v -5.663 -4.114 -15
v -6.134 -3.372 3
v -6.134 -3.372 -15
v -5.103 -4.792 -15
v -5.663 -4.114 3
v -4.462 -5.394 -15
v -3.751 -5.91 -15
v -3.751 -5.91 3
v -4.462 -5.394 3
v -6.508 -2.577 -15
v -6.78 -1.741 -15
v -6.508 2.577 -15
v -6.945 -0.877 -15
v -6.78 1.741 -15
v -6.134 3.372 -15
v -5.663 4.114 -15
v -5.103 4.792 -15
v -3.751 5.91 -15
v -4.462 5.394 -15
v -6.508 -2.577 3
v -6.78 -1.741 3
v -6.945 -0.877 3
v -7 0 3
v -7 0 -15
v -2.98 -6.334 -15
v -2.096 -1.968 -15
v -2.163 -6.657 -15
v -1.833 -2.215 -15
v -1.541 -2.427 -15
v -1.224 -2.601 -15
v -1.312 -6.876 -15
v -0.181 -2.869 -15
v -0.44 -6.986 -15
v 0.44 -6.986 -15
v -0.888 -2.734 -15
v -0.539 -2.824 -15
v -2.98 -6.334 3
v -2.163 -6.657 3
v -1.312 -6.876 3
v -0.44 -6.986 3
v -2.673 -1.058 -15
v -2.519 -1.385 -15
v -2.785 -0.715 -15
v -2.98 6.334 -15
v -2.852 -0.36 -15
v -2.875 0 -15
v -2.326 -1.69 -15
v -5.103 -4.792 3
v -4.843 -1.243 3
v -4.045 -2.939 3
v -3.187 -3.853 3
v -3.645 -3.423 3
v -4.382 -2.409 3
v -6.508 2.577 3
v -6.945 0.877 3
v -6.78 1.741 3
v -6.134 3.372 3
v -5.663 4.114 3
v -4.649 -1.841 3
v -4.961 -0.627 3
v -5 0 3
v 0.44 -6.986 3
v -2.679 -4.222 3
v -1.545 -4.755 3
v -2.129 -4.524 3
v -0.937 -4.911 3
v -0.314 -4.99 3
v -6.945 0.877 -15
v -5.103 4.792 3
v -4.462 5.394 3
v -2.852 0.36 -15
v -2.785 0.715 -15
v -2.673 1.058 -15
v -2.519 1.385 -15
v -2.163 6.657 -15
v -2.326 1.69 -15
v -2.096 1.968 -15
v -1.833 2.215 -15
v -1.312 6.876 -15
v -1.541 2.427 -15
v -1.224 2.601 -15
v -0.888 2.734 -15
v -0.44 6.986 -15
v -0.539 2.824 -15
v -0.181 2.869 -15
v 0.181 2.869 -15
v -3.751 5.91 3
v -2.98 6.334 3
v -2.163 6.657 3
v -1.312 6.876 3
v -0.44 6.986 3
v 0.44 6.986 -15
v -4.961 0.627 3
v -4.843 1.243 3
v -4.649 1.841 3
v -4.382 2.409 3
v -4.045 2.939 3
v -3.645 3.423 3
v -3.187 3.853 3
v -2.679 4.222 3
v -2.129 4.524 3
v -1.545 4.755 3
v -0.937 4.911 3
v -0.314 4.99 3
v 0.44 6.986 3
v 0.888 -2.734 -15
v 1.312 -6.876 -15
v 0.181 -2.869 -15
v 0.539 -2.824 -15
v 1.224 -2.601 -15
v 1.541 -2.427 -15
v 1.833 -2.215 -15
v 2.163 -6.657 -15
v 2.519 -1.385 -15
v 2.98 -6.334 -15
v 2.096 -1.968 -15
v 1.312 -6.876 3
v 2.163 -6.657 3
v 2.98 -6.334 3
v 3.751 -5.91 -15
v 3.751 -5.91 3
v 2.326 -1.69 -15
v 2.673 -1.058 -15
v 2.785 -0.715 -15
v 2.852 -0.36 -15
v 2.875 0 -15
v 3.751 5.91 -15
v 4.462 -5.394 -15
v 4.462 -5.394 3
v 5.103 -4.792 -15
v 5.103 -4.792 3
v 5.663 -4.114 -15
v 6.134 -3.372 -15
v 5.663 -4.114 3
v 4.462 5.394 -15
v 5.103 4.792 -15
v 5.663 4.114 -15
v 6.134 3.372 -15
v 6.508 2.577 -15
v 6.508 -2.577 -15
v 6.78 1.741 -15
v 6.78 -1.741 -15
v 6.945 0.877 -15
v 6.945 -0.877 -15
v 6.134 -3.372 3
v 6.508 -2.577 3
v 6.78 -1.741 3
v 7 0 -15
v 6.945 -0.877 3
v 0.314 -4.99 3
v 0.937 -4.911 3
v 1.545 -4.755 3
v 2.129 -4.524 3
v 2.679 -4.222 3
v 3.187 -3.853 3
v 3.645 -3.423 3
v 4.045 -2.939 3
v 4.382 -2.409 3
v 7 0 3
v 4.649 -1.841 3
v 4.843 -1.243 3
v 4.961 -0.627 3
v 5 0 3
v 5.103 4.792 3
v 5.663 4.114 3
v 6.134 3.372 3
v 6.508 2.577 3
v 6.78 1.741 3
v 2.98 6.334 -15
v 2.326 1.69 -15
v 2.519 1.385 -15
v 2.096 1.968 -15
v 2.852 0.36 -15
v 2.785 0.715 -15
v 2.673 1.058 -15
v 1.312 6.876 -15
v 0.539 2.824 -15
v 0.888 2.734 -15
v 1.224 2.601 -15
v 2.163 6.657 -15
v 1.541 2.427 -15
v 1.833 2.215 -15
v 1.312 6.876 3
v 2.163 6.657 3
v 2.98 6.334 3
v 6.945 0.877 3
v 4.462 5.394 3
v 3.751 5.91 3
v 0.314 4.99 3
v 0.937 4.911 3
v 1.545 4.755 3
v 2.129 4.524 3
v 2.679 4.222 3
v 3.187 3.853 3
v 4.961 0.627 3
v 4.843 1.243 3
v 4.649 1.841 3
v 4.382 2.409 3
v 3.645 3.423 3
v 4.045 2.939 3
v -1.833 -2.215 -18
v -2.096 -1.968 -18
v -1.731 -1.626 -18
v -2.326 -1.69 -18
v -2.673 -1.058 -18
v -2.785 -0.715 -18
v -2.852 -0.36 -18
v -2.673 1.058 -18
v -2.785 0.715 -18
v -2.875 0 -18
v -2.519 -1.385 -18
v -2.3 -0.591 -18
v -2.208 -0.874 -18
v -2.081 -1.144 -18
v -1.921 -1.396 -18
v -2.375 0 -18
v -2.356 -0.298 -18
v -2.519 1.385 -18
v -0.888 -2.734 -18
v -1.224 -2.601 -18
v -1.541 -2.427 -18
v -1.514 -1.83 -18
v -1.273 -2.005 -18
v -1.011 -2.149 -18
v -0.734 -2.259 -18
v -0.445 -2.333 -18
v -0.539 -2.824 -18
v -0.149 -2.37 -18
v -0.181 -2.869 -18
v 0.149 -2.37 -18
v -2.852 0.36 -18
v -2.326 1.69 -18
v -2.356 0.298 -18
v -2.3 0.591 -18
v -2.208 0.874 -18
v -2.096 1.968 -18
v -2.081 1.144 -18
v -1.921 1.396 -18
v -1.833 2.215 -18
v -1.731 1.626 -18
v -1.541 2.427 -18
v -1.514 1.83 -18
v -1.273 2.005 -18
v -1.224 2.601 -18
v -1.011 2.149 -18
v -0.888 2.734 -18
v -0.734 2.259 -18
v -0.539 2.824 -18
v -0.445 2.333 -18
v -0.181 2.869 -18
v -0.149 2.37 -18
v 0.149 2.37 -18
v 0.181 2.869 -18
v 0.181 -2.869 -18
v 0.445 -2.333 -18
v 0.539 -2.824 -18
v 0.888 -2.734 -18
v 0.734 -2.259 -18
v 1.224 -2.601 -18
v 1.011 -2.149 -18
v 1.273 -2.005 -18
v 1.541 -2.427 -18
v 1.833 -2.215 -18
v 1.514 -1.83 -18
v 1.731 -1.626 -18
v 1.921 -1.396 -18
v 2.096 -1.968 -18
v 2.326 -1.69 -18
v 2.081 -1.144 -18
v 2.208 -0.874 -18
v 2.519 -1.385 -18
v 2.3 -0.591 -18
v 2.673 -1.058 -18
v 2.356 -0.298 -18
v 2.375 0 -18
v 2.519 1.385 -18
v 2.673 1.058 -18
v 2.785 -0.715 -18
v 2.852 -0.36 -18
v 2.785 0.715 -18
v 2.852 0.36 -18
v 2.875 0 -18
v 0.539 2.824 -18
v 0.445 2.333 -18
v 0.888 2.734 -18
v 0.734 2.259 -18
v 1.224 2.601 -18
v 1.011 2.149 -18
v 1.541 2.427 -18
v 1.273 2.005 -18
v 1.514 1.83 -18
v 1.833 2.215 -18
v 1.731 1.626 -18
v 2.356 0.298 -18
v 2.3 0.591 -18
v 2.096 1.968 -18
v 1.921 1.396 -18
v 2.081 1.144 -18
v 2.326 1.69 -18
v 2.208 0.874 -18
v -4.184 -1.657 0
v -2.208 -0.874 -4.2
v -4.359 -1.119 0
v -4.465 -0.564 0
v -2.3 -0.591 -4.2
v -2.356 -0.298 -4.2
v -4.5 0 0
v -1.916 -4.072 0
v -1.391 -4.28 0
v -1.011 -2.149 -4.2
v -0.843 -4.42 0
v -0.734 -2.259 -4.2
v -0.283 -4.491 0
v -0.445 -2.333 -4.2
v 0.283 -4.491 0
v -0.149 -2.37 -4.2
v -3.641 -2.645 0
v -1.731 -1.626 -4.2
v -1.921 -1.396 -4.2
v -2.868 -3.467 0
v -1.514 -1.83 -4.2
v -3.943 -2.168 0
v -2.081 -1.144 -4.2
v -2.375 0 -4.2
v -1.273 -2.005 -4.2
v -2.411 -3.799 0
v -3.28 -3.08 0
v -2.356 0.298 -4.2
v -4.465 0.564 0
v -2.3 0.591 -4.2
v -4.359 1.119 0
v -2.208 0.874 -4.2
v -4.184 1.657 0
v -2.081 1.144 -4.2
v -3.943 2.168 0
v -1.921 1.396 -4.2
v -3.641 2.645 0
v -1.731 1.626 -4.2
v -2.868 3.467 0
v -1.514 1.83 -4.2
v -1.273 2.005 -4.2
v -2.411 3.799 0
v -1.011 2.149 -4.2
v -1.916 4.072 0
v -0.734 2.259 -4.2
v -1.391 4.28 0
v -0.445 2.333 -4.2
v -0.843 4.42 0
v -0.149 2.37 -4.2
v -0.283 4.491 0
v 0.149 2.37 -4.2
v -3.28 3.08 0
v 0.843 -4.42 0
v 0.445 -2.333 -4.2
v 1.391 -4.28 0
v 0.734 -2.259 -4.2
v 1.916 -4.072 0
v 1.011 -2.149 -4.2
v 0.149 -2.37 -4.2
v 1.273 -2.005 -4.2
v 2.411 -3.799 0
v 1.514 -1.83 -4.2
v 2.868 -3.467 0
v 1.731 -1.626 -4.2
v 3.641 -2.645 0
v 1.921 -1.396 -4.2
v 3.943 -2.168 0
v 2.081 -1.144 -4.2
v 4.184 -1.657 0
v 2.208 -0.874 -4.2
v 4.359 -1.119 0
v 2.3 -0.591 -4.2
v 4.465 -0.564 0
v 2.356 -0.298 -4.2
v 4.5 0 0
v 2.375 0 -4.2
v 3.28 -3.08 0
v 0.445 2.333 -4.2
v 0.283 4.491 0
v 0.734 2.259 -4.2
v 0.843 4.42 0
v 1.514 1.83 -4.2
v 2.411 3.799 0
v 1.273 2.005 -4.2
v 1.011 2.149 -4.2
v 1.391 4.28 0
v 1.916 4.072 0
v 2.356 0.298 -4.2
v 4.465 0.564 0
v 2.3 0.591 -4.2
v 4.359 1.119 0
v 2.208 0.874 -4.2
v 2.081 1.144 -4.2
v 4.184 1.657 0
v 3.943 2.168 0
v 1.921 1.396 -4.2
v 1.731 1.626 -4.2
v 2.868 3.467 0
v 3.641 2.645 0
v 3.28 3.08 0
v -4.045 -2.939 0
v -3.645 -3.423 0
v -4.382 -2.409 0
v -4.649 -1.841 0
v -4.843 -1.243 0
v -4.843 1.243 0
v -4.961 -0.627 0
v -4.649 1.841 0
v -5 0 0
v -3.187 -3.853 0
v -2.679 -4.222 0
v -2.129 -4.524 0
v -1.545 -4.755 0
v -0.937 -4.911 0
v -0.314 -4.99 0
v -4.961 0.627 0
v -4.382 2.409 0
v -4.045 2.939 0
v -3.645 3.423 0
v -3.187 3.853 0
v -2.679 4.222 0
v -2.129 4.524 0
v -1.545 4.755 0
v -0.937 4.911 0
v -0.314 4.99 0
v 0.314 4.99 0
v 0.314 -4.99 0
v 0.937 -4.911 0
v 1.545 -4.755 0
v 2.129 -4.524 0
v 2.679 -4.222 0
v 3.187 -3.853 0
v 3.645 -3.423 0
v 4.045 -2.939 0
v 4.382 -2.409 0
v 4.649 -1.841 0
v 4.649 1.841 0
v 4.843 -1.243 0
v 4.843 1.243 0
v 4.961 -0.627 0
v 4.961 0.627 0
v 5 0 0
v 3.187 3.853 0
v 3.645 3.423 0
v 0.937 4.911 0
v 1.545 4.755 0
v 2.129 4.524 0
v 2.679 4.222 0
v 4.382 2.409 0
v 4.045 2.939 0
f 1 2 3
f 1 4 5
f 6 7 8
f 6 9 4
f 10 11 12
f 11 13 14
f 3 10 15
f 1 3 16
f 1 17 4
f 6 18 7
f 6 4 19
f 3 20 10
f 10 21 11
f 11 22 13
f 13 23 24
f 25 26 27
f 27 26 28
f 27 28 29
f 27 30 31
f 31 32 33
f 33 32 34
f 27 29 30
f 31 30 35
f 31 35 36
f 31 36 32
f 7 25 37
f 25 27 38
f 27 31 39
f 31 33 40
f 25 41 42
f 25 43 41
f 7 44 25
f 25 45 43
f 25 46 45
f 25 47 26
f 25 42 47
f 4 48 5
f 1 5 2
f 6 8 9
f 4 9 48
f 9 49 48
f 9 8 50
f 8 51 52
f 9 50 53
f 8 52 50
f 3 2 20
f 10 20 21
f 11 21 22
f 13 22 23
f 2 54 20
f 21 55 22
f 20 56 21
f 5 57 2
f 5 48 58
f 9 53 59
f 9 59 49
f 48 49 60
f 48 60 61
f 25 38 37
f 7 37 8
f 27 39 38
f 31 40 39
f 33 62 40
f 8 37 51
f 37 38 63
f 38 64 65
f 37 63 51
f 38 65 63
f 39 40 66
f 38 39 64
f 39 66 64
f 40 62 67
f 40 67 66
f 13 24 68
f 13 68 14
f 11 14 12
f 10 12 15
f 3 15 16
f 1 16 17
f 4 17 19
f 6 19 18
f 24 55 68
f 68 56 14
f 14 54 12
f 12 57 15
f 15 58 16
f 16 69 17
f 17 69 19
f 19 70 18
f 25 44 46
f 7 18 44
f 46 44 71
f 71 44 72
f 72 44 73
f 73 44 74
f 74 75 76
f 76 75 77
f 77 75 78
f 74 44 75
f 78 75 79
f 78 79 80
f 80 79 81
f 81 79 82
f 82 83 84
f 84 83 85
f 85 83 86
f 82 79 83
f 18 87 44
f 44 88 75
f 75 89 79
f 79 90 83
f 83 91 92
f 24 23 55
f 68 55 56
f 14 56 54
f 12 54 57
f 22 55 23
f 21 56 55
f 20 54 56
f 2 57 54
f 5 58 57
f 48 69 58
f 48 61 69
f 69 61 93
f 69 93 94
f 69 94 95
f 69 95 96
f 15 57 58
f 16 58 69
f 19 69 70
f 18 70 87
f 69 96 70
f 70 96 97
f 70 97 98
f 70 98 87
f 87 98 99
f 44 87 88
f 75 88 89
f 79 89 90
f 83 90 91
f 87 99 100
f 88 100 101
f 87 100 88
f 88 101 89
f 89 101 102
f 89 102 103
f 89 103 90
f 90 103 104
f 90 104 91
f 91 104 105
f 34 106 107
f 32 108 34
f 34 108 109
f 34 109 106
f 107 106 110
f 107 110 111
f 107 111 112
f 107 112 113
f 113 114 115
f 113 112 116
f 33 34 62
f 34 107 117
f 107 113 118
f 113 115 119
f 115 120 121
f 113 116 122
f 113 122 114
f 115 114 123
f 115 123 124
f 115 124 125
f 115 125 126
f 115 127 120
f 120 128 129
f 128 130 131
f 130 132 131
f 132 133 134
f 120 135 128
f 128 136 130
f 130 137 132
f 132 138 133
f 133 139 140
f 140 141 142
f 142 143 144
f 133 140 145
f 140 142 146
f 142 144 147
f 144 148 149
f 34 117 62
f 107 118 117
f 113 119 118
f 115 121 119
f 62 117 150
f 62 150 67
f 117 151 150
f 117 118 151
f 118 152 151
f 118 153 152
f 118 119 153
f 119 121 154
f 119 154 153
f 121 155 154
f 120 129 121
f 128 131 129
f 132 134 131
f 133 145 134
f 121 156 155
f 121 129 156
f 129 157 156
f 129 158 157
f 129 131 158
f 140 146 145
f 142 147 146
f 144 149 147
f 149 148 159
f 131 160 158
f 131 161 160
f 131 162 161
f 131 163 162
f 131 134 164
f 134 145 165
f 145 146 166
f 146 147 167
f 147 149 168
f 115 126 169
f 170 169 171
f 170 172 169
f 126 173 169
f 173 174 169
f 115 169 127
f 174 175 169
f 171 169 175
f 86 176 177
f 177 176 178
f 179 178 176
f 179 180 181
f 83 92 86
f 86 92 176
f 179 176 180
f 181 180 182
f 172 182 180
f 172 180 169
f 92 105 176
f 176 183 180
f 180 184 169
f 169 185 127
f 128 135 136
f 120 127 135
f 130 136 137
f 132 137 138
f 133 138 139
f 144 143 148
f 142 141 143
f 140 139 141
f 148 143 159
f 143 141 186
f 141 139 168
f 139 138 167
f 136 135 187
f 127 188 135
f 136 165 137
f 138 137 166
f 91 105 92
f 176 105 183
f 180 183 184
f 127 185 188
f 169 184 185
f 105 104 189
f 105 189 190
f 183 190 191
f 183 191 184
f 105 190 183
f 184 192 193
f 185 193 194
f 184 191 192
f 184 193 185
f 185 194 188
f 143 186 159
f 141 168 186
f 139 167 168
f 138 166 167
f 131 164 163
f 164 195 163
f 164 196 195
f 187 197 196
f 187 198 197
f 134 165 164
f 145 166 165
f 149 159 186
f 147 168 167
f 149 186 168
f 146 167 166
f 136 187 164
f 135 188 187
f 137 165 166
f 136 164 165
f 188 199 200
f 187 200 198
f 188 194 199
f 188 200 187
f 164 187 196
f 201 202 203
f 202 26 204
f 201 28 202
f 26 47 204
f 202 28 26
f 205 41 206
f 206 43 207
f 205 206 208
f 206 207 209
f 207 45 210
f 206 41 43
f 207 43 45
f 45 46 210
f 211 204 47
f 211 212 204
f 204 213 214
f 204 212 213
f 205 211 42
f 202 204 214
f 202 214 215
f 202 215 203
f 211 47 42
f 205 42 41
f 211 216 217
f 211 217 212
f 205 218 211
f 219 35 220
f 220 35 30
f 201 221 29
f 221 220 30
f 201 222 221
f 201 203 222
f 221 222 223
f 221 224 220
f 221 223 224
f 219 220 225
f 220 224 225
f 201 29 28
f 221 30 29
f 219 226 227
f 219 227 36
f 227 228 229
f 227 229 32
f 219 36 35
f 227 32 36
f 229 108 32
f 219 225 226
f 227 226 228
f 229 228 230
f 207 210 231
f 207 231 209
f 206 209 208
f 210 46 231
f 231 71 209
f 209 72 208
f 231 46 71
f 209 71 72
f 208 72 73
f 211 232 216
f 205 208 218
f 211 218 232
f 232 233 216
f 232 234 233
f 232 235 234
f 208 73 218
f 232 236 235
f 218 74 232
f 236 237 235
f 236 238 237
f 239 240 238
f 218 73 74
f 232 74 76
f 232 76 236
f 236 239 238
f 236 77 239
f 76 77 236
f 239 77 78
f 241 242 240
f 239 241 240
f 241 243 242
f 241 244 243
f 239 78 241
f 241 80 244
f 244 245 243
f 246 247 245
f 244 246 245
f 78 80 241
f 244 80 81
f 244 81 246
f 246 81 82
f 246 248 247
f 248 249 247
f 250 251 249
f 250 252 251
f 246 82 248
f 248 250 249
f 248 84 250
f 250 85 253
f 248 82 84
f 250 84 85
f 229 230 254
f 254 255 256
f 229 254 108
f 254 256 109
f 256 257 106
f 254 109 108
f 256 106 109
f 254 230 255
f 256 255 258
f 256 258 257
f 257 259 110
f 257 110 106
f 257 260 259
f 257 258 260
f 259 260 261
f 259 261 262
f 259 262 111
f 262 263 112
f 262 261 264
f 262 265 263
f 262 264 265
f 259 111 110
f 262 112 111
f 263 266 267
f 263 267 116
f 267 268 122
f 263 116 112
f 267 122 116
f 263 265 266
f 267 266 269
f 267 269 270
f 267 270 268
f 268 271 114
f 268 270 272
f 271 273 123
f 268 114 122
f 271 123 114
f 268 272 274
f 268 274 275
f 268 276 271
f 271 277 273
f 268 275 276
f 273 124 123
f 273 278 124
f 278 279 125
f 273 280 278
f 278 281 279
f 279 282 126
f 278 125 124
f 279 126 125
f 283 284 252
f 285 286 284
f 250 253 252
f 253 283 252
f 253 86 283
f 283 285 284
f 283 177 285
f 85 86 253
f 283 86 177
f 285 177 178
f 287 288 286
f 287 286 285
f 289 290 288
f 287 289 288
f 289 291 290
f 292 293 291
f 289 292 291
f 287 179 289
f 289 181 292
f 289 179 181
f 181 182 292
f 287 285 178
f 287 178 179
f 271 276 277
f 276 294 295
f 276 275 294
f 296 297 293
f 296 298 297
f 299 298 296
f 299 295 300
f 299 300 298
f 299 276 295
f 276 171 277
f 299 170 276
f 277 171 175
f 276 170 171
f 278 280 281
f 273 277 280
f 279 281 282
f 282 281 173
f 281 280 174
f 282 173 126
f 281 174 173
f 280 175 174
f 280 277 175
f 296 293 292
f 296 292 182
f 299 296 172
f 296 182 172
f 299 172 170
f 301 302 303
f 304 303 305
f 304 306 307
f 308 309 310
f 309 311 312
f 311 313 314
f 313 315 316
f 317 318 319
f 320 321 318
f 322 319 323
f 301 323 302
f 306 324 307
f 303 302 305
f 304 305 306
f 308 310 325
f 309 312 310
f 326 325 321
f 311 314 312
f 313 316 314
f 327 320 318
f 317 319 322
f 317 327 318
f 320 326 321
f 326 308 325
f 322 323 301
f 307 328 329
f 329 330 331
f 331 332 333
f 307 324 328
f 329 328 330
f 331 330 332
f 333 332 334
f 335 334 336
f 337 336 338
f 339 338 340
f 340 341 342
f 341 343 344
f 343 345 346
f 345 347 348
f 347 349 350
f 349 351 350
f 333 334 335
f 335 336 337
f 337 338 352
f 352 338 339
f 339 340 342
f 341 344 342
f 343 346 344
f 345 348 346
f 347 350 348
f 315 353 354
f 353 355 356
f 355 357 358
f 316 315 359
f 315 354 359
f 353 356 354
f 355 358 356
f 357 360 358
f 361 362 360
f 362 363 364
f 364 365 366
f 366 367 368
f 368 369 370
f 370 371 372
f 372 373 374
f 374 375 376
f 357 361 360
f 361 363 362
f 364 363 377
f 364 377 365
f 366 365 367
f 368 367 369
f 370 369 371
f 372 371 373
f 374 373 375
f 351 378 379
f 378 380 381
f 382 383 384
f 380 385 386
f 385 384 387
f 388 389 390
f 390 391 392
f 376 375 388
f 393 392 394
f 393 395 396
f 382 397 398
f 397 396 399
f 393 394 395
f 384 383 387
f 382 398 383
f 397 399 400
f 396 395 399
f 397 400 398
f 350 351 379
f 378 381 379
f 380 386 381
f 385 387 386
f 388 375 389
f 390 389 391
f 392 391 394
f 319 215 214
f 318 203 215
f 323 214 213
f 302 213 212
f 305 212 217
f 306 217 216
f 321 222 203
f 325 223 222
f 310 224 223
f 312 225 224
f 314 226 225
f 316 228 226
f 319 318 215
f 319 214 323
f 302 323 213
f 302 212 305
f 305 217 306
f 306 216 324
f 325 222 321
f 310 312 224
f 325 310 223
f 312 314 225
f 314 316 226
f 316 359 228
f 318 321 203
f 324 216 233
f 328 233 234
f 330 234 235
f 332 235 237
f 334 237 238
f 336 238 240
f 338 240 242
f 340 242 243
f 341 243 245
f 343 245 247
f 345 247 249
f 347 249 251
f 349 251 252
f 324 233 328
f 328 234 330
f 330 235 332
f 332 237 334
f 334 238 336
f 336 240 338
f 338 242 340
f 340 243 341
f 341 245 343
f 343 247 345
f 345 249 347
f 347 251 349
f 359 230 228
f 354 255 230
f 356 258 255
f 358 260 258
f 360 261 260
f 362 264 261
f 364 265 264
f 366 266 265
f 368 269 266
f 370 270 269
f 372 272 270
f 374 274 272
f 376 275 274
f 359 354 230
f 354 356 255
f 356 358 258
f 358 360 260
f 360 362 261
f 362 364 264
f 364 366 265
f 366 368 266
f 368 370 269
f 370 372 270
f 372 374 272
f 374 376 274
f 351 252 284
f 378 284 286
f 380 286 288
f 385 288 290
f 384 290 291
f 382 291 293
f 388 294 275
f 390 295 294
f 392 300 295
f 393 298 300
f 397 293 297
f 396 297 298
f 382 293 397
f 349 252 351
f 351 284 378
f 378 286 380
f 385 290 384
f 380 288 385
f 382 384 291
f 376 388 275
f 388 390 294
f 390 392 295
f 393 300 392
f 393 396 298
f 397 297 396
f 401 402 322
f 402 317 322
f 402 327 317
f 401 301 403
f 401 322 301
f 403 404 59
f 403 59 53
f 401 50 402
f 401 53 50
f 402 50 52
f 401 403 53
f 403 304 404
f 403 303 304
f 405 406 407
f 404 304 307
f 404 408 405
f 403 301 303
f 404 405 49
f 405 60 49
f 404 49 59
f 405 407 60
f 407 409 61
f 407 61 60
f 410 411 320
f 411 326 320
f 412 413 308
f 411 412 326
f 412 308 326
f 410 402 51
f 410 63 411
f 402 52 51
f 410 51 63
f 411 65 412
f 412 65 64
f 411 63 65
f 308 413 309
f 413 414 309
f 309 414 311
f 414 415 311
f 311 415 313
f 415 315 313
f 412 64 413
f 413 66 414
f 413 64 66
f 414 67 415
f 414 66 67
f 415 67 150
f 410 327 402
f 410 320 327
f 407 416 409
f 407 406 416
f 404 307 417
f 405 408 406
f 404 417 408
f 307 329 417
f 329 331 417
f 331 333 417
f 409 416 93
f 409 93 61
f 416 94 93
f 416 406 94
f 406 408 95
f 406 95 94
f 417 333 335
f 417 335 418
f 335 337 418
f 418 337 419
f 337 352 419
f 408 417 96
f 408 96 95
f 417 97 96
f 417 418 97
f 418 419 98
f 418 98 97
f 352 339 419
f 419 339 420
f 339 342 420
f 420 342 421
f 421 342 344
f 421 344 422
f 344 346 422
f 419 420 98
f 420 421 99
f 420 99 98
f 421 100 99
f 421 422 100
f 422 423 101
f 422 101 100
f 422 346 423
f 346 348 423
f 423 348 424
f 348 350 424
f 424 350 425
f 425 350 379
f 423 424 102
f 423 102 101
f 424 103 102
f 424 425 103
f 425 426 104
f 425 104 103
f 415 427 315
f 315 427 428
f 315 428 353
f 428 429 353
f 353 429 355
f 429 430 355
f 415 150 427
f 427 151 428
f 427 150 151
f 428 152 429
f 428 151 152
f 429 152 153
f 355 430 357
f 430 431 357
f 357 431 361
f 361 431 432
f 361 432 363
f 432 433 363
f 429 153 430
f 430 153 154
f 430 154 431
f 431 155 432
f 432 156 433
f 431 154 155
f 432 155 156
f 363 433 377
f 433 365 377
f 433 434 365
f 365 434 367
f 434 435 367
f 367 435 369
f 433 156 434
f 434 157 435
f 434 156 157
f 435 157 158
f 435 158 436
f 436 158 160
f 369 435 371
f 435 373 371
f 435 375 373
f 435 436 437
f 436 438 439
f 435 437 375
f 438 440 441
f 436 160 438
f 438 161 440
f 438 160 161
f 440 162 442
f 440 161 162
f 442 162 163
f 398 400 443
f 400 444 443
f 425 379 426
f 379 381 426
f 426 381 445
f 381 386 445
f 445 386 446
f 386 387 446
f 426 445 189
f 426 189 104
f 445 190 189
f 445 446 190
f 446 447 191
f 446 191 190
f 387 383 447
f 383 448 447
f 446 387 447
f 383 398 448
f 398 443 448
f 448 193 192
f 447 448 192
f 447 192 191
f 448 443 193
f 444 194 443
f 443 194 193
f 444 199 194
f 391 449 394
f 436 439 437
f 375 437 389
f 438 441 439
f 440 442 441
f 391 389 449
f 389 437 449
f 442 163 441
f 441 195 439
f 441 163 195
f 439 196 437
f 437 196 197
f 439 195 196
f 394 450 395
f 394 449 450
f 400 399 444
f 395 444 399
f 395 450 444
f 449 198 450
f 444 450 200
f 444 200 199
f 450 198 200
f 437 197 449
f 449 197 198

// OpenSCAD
$fn = 50;


difference() {
	union() {
		translate(v = [0, 0, -15.0000000000]) {
			cylinder(h = 18, r = 7.0000000000);
		}
		#translate(v = [0, 0, -18.0000000000]) {
			cylinder(h = 18, r = 2.8750000000);
		}
	}
	union() {
		translate(v = [0, 0, 0]) {
			rotate(a = [0, 0, 0]) {
				difference() {
					union() {
						translate(v = [0, 0, -18.0000000000]) {
							cylinder(h = 18, r = 2.2500000000);
						}
						translate(v = [0, 0, -4.2000000000]) {
							cylinder(h = 4.2000000000, r1 = 2.3750000000, r2 = 4.5000000000);
						}
						translate(v = [0, 0, -18.0000000000]) {
							cylinder(h = 18, r = 2.3750000000);
						}
						translate(v = [0, 0, -18.0000000000]) {
							cylinder(h = 18, r = 2.2500000000);
						}
					}
					union();
				}
			}
		}
		#cylinder(h = 3, r = 5.0000000000);
	}
}
